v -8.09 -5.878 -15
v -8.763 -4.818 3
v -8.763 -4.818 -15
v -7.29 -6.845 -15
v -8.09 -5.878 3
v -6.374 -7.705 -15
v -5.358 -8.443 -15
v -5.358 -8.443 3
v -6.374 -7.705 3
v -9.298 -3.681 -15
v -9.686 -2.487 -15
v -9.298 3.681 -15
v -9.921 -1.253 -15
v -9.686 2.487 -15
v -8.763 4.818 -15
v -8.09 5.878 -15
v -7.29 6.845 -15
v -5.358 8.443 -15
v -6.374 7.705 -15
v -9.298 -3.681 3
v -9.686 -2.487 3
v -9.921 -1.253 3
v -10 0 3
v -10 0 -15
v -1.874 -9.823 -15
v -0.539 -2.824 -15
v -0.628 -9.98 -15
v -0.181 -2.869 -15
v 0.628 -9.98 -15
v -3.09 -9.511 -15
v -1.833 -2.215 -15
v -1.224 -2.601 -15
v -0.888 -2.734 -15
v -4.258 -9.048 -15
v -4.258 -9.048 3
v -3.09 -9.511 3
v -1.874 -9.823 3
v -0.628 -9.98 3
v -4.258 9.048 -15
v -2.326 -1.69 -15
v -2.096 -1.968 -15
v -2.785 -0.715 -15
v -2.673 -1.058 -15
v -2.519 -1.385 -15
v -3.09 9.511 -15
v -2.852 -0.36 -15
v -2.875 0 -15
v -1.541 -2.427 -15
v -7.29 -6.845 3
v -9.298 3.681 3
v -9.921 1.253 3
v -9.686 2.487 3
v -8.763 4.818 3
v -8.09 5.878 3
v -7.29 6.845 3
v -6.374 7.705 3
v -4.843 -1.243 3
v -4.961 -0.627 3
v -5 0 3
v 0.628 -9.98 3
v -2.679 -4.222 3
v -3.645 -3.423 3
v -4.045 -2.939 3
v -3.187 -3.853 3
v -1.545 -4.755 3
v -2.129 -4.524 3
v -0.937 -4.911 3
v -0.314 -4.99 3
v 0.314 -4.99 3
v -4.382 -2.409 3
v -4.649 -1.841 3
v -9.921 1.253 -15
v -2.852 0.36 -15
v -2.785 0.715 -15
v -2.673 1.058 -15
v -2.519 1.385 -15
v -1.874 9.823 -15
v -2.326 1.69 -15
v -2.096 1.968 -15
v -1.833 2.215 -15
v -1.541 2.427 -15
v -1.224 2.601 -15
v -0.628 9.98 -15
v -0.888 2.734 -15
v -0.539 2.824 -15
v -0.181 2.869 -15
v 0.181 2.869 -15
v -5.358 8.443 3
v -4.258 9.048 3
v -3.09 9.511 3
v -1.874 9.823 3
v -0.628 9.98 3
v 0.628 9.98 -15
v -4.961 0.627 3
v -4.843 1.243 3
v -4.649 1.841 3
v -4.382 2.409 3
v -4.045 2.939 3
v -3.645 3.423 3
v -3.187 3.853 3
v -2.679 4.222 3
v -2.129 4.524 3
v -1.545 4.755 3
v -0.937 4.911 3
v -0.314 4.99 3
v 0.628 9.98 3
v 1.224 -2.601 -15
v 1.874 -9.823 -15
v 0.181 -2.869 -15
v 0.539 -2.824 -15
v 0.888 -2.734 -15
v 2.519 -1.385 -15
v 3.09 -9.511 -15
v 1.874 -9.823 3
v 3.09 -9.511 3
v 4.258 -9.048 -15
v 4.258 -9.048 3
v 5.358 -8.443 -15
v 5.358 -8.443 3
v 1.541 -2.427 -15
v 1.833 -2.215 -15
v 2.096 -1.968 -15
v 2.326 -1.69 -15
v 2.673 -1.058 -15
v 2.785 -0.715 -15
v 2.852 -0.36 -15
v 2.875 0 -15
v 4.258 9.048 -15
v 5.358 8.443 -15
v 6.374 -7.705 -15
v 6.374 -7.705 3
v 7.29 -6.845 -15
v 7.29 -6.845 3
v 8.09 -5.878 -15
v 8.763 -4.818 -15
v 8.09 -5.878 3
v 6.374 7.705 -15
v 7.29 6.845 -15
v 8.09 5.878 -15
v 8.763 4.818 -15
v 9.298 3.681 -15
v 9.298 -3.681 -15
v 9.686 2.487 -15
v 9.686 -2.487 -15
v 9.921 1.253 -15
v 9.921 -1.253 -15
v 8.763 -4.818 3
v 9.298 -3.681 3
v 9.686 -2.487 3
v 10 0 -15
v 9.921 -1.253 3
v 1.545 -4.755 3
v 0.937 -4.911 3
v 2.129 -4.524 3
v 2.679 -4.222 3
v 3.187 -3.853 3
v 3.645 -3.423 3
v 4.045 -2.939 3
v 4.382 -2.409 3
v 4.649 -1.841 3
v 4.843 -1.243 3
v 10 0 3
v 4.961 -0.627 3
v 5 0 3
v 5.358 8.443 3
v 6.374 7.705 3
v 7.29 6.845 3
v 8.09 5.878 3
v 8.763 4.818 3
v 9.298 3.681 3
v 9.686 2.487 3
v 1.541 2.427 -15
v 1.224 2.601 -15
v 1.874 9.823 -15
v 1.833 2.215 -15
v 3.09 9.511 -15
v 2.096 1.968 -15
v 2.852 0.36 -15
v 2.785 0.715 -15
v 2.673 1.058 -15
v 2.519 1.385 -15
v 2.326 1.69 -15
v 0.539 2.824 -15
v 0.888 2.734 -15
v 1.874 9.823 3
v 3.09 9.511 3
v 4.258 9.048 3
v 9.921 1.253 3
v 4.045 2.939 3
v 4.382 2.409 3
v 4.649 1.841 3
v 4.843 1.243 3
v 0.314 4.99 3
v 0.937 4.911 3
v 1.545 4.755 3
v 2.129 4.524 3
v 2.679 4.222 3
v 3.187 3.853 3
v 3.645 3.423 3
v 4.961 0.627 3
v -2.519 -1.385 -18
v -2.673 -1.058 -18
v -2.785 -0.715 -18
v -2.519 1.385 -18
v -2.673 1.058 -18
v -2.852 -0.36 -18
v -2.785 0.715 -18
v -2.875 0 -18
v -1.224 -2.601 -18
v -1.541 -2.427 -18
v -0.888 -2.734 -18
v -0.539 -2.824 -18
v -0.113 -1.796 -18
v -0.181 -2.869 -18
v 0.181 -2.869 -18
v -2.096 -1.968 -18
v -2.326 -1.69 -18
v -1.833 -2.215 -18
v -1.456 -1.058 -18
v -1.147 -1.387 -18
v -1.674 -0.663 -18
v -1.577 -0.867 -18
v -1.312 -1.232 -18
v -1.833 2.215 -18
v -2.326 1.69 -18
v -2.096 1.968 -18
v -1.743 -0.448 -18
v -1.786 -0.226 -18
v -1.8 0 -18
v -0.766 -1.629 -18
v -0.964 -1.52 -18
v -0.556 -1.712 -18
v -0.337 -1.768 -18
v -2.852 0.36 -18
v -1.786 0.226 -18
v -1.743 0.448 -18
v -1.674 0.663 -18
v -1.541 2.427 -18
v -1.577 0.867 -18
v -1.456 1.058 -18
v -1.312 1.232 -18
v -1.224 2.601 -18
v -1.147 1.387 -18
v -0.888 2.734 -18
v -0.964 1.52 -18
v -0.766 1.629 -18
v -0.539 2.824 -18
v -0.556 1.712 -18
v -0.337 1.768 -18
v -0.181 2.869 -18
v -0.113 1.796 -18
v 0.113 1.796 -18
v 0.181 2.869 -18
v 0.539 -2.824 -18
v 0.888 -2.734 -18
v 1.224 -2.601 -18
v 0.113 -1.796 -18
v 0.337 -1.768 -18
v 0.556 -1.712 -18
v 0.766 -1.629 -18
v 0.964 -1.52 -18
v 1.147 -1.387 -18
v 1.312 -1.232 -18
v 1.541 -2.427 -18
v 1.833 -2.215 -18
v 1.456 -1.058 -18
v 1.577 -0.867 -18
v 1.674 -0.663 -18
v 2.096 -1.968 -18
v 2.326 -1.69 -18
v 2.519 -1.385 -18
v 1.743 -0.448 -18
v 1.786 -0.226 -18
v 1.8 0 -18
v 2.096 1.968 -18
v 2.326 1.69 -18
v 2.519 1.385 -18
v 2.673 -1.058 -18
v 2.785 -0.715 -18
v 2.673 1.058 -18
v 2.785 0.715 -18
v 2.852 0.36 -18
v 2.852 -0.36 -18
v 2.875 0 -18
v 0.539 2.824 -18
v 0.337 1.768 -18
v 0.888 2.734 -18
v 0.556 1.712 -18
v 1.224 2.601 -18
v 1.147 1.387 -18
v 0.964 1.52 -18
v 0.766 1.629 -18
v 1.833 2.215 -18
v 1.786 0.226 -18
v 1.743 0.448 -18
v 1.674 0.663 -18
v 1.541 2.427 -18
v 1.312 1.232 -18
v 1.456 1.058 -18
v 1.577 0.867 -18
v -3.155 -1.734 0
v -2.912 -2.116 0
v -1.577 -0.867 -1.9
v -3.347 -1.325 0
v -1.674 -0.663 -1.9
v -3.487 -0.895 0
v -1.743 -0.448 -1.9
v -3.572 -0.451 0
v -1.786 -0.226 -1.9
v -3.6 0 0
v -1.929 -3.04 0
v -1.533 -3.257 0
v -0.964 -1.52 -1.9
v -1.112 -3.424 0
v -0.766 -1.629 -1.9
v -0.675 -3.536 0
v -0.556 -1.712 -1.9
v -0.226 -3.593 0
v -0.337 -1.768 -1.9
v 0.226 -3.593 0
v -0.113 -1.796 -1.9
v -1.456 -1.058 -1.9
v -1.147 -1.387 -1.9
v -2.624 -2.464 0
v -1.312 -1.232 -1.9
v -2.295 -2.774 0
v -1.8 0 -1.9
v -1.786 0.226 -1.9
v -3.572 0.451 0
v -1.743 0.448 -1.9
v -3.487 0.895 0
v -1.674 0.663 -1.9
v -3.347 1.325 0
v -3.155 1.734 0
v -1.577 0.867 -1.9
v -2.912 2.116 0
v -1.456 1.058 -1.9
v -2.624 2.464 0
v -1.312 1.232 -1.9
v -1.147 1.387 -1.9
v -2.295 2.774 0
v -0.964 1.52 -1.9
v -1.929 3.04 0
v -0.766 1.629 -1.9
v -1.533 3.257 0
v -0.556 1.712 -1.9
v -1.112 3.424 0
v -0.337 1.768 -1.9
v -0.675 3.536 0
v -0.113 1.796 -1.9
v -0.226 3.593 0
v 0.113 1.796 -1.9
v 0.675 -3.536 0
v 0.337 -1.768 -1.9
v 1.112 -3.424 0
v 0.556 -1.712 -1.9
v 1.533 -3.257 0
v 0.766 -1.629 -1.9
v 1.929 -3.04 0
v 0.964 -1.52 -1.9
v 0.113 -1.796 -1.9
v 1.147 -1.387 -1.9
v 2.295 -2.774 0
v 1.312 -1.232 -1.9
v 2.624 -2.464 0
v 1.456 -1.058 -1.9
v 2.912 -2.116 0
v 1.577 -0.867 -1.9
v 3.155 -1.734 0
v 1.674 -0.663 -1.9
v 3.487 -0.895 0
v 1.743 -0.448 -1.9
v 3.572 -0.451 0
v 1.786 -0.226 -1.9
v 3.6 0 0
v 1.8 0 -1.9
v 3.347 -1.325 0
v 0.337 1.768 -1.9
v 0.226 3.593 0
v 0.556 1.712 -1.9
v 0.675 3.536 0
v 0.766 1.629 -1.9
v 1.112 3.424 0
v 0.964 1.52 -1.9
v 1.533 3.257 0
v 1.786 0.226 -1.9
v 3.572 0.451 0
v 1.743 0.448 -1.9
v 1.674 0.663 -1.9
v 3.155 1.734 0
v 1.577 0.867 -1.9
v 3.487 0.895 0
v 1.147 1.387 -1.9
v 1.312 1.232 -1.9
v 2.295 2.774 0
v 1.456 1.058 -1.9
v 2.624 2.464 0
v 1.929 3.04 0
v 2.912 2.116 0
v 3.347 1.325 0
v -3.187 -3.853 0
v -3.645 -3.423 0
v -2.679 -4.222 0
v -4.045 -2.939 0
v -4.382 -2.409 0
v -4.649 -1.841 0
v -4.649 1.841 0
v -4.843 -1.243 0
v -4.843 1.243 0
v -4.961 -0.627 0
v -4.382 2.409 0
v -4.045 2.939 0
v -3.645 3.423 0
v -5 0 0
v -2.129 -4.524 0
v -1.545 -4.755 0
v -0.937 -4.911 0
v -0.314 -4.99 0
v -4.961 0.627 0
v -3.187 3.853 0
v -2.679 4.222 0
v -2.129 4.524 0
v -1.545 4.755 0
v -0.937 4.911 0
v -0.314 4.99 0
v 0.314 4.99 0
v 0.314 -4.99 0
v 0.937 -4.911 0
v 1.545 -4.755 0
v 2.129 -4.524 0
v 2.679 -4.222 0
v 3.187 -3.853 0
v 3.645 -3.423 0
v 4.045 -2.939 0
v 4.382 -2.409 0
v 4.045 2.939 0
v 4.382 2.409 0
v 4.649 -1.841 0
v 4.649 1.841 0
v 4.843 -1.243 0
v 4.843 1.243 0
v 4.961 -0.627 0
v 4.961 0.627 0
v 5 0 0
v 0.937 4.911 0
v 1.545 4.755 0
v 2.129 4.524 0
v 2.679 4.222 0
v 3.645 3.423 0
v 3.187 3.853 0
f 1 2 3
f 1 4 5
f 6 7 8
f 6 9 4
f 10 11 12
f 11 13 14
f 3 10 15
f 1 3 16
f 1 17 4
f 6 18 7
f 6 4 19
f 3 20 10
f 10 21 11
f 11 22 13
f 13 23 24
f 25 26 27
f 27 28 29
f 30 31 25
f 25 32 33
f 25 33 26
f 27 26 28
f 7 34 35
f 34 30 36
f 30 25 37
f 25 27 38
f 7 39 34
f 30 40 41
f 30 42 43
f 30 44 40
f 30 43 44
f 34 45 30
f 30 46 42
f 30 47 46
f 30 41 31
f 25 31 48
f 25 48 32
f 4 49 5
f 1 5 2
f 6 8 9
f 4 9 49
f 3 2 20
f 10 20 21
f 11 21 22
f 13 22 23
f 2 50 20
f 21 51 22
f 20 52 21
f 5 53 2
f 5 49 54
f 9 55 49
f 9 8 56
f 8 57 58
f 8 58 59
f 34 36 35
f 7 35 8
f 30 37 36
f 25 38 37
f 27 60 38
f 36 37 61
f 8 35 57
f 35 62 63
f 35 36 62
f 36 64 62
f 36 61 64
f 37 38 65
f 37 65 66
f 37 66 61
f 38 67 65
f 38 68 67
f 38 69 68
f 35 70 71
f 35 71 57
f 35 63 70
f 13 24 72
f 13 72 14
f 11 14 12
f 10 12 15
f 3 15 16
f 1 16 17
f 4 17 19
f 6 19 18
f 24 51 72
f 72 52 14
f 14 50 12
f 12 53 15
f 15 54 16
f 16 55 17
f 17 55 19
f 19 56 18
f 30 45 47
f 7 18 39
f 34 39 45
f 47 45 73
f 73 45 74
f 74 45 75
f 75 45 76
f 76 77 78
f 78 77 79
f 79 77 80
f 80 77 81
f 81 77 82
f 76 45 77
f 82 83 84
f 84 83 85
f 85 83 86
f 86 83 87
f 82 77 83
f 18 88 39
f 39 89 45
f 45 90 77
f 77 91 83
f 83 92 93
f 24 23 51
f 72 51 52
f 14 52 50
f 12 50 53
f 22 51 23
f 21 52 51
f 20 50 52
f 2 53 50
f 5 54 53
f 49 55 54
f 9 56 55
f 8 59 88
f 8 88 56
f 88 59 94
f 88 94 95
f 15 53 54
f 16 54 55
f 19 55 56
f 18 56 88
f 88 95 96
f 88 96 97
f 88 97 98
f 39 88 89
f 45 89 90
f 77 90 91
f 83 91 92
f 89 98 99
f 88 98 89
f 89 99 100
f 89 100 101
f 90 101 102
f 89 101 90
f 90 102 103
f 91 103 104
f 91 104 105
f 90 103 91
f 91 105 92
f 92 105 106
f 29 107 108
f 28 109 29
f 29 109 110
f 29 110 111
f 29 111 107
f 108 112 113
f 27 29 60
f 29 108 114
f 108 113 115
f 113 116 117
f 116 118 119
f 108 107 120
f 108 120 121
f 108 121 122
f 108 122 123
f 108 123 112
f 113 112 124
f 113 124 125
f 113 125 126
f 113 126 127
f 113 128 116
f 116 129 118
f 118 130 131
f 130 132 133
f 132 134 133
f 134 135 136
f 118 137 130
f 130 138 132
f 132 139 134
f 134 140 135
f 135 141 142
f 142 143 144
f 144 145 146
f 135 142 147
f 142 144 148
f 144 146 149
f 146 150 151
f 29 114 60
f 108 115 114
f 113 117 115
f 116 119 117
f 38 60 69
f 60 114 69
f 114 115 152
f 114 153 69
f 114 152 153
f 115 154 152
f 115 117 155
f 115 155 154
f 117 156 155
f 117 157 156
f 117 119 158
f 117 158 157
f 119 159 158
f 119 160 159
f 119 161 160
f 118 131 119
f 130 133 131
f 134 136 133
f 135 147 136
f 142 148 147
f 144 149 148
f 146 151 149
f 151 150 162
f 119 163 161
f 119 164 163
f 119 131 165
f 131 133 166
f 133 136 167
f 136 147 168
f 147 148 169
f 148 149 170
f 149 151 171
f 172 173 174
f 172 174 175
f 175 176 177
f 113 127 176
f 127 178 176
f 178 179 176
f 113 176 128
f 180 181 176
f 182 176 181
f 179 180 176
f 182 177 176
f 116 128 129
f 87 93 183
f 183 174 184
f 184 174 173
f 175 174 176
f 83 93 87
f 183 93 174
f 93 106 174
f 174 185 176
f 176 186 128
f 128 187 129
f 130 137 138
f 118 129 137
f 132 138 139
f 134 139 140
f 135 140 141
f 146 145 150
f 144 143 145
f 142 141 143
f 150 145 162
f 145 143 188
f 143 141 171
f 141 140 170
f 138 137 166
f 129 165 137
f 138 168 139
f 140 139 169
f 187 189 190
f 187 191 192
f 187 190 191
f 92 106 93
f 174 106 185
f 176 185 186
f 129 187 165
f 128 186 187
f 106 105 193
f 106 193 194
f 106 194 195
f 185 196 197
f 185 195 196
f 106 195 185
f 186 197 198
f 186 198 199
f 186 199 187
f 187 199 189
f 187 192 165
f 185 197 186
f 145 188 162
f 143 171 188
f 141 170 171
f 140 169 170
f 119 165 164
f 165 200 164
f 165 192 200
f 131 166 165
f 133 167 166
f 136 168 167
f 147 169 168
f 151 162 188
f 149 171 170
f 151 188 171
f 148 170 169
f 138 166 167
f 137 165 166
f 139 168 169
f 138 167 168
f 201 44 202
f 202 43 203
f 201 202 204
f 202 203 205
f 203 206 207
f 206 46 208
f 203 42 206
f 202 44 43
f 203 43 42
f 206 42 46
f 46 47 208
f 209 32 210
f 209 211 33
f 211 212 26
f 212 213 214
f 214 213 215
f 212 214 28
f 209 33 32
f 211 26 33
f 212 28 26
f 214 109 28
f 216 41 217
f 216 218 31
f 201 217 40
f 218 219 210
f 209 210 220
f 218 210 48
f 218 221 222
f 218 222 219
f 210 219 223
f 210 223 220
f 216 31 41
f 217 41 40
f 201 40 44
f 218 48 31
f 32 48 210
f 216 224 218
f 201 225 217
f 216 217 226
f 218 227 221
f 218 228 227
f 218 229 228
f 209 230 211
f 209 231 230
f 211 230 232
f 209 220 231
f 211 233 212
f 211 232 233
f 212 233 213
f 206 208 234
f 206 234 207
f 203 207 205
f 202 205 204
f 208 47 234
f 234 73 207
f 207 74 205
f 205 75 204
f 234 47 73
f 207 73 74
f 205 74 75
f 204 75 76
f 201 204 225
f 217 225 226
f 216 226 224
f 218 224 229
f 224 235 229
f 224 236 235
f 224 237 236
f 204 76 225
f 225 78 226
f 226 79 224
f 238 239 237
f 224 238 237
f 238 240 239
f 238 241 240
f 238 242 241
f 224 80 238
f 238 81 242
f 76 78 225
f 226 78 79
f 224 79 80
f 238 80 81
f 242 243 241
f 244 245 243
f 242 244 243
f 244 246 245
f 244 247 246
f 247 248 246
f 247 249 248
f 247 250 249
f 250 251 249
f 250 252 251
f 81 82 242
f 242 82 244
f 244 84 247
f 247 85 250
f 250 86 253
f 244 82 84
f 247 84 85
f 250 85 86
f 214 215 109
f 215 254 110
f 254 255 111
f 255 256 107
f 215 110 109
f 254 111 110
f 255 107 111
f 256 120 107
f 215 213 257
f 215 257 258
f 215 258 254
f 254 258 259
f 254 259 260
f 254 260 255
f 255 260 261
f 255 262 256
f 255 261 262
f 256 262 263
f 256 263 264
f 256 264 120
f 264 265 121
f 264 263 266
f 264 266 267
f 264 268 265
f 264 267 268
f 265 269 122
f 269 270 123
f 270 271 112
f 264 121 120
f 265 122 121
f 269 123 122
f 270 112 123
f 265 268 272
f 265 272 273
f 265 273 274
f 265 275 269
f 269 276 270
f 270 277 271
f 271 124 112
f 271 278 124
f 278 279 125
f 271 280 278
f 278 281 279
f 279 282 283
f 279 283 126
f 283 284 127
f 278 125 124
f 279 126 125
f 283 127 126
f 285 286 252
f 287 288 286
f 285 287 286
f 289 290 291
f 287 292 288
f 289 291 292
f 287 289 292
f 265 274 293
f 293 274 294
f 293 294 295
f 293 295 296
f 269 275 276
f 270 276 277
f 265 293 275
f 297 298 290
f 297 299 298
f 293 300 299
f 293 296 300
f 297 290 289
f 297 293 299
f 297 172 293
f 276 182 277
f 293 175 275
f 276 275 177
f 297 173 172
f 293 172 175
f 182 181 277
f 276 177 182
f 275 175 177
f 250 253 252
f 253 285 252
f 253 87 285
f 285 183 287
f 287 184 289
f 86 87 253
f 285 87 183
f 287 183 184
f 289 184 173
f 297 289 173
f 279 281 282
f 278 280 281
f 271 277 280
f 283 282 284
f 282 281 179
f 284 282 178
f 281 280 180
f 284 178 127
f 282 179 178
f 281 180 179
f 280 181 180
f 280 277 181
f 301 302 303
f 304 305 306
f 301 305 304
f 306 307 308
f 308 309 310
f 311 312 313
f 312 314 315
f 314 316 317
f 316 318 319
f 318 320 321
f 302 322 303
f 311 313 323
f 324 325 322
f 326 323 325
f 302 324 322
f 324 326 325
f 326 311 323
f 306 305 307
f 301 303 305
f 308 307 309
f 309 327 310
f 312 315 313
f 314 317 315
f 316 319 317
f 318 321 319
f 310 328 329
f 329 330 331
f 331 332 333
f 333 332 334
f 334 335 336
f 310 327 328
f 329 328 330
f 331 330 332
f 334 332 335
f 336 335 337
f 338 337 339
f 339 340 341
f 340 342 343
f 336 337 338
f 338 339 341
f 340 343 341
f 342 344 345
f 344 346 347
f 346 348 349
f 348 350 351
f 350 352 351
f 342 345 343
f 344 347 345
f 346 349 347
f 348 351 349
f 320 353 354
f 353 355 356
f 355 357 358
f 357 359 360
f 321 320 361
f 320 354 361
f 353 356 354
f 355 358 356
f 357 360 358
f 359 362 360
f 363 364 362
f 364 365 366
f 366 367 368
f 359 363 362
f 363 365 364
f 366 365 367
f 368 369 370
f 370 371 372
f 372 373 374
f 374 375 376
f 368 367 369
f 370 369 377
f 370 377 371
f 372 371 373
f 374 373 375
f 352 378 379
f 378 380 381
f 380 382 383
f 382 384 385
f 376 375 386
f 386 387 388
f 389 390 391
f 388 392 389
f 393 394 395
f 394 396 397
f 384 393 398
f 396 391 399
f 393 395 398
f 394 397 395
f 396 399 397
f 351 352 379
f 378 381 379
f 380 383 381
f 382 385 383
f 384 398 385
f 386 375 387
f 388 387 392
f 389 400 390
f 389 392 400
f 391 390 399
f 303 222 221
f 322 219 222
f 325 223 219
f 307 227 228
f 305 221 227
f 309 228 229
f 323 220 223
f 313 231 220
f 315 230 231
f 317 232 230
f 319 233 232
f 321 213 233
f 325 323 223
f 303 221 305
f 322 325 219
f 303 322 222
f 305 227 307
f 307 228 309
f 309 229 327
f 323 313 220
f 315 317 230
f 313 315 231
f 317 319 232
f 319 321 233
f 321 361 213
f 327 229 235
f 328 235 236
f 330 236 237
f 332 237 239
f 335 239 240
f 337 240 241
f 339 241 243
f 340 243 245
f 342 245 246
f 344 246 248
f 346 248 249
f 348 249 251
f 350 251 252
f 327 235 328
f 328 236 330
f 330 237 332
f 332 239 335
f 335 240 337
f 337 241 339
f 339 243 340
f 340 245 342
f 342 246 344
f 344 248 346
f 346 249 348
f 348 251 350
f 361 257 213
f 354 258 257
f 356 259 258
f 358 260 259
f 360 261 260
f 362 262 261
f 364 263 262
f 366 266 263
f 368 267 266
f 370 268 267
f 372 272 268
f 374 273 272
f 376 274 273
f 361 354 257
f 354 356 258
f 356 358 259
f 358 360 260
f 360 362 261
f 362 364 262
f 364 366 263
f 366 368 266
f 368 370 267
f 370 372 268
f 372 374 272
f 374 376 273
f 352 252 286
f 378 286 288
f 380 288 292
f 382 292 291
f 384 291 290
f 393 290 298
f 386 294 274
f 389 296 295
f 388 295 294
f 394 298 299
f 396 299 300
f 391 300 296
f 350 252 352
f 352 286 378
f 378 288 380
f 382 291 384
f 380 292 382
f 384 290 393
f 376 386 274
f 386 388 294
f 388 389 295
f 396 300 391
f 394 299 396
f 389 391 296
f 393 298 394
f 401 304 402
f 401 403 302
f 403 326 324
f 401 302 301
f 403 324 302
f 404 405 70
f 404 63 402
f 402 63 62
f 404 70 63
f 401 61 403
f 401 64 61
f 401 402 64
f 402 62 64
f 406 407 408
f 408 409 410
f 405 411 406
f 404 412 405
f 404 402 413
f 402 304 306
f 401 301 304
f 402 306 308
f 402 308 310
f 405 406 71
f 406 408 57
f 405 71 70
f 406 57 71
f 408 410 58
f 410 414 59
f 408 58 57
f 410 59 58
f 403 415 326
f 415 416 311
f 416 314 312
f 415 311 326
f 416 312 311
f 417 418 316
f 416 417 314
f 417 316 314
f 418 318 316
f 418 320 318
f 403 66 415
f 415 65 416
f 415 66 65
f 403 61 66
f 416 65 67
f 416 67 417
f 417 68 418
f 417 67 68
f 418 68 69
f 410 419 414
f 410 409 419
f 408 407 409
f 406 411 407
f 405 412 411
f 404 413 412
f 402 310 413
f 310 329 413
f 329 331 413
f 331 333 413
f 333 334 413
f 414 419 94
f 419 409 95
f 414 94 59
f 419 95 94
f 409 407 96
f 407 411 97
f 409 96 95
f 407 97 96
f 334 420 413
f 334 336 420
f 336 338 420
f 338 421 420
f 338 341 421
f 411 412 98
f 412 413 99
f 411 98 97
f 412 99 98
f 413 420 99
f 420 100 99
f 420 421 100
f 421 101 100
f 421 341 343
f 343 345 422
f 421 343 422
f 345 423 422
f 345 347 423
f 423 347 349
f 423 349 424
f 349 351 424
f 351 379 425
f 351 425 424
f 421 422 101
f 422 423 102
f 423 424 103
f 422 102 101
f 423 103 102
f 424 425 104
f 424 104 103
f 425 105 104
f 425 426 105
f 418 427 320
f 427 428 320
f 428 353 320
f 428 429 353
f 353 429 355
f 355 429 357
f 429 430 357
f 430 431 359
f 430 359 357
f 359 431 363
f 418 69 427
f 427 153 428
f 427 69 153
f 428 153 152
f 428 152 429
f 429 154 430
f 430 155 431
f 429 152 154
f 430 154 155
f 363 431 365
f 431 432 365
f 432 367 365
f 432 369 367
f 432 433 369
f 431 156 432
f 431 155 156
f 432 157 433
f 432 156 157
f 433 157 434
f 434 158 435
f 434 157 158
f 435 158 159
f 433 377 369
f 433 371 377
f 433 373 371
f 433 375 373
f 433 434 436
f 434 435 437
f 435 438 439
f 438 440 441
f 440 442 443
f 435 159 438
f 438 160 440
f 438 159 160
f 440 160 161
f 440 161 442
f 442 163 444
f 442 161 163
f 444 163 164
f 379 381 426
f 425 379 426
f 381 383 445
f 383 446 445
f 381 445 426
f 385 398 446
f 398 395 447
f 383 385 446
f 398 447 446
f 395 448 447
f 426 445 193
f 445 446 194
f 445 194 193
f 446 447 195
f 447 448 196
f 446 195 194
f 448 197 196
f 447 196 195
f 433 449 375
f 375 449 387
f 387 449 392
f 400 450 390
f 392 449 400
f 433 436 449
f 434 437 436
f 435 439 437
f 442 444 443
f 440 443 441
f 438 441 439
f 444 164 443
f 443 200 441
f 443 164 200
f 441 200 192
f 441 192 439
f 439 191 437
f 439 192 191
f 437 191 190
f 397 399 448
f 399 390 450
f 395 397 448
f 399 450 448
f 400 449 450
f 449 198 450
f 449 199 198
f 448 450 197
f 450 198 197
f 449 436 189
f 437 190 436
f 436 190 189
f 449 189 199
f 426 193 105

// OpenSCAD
$fn = 50;

difference() {
	union() {
		translate(v = [0, 0, -15.0]) {
			cylinder(h = 18, r = 10.0);
		}
		#translate(v = [0, 0, -18.0]) {
			cylinder(h = 18, r = 2.875);
		}
	}
	union() {
		translate(v = [0, 0, 0]) {
			rotate(a = [0, 0, 0]) {
				difference() {
					union() {
						translate(v = [0, 0, -18.0]) {
							cylinder(h = 18, r = 1.5);
						}
						translate(v = [0, 0, -1.9]) {
							cylinder(h = 1.9, r1 = 1.8, r2 = 3.6);
						}
						translate(v = [0, 0, -18.0]) {
							cylinder(h = 18, r = 1.8);
						}
						translate(v = [0, 0, -18.0]) {
							cylinder(h = 18, r = 1.5);
						}
					}
					union();
				}
			}
		}
		#cylinder(h = 3, r = 5.0);
	}
}
